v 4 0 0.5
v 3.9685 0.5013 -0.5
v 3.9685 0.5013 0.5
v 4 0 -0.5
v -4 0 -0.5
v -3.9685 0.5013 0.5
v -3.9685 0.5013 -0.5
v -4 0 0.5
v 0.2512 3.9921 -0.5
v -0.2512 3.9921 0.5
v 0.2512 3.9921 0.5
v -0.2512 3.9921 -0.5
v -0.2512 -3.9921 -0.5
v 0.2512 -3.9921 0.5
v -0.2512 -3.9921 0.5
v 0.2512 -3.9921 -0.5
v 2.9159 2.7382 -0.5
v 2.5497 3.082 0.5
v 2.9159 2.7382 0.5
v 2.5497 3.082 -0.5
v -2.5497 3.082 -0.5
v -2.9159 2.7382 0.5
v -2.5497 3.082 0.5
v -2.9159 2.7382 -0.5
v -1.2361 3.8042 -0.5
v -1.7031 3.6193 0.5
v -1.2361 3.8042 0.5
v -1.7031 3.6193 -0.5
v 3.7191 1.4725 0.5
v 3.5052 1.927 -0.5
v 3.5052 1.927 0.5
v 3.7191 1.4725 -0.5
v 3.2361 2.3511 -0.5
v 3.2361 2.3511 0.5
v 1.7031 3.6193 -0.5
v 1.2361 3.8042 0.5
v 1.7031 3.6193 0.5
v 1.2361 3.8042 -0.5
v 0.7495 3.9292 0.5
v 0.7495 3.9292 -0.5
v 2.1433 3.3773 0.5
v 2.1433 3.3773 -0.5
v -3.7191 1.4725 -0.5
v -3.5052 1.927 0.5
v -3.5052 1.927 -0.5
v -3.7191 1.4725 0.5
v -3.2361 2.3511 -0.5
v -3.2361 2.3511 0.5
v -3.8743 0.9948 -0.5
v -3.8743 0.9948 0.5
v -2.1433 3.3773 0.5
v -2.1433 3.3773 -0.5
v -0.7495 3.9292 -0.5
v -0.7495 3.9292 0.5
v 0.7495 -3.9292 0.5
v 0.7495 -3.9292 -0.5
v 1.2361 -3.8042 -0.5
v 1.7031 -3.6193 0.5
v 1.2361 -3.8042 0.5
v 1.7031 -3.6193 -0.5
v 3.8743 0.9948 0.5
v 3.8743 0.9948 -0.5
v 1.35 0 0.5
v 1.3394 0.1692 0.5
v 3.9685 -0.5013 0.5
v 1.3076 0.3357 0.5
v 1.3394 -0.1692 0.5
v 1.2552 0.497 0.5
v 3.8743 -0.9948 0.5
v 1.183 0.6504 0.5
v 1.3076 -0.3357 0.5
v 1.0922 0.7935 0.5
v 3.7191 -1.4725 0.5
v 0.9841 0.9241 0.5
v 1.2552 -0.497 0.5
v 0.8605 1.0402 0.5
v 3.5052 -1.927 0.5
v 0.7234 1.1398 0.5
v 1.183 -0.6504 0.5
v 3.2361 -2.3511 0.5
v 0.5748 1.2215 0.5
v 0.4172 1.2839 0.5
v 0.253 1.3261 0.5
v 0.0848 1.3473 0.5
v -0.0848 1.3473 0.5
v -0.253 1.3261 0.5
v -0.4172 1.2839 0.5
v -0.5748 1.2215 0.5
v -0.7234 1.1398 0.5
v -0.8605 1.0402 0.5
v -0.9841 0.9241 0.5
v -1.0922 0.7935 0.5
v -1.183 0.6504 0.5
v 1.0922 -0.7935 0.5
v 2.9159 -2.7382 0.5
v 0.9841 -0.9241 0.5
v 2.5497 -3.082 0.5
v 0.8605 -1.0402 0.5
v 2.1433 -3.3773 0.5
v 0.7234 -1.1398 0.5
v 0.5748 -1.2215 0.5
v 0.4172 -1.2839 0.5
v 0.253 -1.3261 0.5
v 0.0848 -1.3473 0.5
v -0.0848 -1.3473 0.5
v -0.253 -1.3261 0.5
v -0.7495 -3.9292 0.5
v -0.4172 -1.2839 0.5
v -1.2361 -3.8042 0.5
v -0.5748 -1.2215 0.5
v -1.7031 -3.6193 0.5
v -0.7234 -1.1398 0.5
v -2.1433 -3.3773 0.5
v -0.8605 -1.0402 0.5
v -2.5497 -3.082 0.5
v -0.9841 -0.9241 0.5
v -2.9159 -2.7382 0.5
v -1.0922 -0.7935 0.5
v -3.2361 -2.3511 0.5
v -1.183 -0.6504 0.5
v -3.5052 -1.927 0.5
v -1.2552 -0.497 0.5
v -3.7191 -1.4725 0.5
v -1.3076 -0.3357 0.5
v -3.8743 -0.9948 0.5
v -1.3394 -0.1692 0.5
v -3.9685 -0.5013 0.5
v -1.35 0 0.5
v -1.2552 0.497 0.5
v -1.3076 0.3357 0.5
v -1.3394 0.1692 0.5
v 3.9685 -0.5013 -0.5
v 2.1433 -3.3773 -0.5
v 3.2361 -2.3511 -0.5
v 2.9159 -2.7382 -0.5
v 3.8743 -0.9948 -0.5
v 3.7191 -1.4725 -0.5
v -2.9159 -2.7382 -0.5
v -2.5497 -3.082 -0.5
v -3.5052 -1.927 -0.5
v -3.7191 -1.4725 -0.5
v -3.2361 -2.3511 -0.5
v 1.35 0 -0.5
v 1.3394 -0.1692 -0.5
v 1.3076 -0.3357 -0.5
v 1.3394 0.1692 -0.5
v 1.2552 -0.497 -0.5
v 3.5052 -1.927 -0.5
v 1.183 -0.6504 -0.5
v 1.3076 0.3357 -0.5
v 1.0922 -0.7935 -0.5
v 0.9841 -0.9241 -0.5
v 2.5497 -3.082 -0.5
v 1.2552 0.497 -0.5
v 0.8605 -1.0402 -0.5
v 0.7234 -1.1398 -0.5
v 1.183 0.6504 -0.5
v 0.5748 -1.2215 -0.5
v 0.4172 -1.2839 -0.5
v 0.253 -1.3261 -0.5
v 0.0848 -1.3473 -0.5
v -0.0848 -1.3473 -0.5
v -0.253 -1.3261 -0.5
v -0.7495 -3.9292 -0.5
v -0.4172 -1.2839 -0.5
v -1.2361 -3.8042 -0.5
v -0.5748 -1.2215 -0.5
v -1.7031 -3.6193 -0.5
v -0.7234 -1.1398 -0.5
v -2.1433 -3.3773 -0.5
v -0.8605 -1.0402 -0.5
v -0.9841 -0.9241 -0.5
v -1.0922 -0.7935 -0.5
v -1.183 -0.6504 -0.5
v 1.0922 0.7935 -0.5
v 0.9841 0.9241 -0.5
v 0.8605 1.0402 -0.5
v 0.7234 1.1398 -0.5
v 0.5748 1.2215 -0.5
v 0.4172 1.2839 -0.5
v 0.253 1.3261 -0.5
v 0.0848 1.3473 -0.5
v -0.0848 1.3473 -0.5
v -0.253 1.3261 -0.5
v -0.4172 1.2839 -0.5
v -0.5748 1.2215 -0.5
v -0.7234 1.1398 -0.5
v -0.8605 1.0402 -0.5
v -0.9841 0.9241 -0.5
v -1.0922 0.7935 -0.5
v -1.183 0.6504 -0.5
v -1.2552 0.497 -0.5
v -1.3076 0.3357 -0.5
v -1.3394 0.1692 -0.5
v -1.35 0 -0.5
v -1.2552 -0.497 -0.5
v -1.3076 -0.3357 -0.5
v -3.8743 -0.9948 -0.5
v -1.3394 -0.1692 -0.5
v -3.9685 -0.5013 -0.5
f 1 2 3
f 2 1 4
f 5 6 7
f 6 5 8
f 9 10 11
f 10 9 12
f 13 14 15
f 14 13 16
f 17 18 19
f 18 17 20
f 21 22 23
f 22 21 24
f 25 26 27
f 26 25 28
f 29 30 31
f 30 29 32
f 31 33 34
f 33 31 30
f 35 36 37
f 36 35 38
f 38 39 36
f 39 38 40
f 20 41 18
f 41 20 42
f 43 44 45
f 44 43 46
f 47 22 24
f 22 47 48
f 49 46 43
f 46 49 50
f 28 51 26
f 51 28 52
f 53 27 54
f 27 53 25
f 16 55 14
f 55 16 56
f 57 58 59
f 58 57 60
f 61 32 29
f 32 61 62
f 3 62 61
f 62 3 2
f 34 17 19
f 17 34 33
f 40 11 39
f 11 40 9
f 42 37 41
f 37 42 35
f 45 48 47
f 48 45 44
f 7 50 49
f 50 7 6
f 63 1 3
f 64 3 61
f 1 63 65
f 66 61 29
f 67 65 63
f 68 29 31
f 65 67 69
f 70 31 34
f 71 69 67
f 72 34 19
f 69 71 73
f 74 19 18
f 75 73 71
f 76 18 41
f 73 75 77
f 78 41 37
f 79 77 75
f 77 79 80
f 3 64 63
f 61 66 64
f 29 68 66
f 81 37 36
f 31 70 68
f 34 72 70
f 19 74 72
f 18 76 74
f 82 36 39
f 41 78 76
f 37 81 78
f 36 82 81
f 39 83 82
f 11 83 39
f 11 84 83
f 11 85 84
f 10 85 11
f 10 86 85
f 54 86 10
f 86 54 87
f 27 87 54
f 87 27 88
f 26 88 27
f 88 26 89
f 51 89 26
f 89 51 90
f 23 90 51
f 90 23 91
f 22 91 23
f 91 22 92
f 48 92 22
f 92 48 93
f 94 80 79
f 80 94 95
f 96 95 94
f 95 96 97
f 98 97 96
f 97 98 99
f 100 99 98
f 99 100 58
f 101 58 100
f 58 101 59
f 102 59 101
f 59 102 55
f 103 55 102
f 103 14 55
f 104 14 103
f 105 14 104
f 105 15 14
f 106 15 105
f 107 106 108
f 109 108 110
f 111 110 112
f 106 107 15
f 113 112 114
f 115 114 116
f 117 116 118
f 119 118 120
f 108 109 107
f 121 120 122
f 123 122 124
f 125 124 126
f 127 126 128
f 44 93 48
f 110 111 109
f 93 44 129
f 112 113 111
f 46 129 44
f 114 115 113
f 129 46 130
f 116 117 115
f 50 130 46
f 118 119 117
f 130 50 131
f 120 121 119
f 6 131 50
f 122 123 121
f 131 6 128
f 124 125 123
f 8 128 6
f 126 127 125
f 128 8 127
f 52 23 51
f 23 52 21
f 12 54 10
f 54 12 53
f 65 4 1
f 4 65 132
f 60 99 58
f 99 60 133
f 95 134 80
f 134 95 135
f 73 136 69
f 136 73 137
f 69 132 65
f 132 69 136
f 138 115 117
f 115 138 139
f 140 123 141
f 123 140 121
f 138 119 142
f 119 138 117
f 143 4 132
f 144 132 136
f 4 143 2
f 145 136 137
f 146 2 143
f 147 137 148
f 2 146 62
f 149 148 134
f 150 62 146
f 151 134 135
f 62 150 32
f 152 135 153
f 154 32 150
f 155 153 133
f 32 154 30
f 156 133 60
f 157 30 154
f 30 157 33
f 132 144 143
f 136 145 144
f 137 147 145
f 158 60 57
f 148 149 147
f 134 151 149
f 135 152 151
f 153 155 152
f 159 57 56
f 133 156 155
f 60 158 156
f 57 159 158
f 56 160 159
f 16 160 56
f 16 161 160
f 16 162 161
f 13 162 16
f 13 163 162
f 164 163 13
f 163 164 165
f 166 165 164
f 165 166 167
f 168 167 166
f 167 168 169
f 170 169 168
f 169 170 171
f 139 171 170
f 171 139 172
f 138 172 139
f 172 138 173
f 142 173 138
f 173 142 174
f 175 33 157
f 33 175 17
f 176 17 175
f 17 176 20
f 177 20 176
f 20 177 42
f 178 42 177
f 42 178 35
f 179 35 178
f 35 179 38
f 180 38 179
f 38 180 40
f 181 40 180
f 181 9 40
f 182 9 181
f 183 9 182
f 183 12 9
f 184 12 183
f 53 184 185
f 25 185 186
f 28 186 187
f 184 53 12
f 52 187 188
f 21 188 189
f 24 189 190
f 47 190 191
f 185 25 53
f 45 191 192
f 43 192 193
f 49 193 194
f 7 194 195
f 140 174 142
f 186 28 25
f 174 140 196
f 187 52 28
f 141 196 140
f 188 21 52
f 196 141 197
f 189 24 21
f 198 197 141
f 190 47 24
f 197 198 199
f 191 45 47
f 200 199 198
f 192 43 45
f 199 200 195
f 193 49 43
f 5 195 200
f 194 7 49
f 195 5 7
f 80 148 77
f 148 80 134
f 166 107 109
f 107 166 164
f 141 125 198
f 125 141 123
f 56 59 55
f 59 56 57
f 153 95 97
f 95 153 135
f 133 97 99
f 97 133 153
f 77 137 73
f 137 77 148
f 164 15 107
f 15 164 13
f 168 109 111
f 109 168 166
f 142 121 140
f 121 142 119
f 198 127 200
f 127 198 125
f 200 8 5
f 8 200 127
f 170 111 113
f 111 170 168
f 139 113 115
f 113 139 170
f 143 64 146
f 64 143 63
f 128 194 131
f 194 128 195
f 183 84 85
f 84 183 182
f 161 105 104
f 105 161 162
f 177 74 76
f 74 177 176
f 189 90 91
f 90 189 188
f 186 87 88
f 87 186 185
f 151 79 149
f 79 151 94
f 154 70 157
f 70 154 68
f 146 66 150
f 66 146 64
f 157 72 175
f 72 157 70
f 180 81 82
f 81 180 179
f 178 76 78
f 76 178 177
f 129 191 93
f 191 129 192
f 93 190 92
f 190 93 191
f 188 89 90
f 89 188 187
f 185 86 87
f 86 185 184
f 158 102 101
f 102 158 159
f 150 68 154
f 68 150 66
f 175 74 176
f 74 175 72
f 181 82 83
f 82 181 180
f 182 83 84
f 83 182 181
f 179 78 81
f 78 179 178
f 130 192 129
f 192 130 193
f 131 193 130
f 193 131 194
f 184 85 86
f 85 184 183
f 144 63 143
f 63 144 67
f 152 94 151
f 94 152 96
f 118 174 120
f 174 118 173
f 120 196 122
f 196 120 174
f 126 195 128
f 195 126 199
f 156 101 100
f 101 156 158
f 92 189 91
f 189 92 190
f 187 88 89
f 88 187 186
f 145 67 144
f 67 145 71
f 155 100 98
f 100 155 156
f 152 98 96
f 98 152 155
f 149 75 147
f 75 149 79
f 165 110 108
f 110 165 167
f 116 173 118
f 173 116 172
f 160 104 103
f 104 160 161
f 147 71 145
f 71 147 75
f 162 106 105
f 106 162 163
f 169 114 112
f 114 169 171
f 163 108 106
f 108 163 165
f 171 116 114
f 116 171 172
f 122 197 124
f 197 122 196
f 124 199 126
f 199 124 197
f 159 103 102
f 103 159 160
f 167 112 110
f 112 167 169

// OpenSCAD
$fn = 50;


difference() {
	union() {
		translate(v = [0, 0, -0.5000000000]) {
			cylinder(h = 1, r = 4.0000000000);
		}
	}
	union() {
		translate(v = [0, 0, -100.0000000000]) {
			cylinder(h = 200, r = 1.3500000000);
		}
	}
}
